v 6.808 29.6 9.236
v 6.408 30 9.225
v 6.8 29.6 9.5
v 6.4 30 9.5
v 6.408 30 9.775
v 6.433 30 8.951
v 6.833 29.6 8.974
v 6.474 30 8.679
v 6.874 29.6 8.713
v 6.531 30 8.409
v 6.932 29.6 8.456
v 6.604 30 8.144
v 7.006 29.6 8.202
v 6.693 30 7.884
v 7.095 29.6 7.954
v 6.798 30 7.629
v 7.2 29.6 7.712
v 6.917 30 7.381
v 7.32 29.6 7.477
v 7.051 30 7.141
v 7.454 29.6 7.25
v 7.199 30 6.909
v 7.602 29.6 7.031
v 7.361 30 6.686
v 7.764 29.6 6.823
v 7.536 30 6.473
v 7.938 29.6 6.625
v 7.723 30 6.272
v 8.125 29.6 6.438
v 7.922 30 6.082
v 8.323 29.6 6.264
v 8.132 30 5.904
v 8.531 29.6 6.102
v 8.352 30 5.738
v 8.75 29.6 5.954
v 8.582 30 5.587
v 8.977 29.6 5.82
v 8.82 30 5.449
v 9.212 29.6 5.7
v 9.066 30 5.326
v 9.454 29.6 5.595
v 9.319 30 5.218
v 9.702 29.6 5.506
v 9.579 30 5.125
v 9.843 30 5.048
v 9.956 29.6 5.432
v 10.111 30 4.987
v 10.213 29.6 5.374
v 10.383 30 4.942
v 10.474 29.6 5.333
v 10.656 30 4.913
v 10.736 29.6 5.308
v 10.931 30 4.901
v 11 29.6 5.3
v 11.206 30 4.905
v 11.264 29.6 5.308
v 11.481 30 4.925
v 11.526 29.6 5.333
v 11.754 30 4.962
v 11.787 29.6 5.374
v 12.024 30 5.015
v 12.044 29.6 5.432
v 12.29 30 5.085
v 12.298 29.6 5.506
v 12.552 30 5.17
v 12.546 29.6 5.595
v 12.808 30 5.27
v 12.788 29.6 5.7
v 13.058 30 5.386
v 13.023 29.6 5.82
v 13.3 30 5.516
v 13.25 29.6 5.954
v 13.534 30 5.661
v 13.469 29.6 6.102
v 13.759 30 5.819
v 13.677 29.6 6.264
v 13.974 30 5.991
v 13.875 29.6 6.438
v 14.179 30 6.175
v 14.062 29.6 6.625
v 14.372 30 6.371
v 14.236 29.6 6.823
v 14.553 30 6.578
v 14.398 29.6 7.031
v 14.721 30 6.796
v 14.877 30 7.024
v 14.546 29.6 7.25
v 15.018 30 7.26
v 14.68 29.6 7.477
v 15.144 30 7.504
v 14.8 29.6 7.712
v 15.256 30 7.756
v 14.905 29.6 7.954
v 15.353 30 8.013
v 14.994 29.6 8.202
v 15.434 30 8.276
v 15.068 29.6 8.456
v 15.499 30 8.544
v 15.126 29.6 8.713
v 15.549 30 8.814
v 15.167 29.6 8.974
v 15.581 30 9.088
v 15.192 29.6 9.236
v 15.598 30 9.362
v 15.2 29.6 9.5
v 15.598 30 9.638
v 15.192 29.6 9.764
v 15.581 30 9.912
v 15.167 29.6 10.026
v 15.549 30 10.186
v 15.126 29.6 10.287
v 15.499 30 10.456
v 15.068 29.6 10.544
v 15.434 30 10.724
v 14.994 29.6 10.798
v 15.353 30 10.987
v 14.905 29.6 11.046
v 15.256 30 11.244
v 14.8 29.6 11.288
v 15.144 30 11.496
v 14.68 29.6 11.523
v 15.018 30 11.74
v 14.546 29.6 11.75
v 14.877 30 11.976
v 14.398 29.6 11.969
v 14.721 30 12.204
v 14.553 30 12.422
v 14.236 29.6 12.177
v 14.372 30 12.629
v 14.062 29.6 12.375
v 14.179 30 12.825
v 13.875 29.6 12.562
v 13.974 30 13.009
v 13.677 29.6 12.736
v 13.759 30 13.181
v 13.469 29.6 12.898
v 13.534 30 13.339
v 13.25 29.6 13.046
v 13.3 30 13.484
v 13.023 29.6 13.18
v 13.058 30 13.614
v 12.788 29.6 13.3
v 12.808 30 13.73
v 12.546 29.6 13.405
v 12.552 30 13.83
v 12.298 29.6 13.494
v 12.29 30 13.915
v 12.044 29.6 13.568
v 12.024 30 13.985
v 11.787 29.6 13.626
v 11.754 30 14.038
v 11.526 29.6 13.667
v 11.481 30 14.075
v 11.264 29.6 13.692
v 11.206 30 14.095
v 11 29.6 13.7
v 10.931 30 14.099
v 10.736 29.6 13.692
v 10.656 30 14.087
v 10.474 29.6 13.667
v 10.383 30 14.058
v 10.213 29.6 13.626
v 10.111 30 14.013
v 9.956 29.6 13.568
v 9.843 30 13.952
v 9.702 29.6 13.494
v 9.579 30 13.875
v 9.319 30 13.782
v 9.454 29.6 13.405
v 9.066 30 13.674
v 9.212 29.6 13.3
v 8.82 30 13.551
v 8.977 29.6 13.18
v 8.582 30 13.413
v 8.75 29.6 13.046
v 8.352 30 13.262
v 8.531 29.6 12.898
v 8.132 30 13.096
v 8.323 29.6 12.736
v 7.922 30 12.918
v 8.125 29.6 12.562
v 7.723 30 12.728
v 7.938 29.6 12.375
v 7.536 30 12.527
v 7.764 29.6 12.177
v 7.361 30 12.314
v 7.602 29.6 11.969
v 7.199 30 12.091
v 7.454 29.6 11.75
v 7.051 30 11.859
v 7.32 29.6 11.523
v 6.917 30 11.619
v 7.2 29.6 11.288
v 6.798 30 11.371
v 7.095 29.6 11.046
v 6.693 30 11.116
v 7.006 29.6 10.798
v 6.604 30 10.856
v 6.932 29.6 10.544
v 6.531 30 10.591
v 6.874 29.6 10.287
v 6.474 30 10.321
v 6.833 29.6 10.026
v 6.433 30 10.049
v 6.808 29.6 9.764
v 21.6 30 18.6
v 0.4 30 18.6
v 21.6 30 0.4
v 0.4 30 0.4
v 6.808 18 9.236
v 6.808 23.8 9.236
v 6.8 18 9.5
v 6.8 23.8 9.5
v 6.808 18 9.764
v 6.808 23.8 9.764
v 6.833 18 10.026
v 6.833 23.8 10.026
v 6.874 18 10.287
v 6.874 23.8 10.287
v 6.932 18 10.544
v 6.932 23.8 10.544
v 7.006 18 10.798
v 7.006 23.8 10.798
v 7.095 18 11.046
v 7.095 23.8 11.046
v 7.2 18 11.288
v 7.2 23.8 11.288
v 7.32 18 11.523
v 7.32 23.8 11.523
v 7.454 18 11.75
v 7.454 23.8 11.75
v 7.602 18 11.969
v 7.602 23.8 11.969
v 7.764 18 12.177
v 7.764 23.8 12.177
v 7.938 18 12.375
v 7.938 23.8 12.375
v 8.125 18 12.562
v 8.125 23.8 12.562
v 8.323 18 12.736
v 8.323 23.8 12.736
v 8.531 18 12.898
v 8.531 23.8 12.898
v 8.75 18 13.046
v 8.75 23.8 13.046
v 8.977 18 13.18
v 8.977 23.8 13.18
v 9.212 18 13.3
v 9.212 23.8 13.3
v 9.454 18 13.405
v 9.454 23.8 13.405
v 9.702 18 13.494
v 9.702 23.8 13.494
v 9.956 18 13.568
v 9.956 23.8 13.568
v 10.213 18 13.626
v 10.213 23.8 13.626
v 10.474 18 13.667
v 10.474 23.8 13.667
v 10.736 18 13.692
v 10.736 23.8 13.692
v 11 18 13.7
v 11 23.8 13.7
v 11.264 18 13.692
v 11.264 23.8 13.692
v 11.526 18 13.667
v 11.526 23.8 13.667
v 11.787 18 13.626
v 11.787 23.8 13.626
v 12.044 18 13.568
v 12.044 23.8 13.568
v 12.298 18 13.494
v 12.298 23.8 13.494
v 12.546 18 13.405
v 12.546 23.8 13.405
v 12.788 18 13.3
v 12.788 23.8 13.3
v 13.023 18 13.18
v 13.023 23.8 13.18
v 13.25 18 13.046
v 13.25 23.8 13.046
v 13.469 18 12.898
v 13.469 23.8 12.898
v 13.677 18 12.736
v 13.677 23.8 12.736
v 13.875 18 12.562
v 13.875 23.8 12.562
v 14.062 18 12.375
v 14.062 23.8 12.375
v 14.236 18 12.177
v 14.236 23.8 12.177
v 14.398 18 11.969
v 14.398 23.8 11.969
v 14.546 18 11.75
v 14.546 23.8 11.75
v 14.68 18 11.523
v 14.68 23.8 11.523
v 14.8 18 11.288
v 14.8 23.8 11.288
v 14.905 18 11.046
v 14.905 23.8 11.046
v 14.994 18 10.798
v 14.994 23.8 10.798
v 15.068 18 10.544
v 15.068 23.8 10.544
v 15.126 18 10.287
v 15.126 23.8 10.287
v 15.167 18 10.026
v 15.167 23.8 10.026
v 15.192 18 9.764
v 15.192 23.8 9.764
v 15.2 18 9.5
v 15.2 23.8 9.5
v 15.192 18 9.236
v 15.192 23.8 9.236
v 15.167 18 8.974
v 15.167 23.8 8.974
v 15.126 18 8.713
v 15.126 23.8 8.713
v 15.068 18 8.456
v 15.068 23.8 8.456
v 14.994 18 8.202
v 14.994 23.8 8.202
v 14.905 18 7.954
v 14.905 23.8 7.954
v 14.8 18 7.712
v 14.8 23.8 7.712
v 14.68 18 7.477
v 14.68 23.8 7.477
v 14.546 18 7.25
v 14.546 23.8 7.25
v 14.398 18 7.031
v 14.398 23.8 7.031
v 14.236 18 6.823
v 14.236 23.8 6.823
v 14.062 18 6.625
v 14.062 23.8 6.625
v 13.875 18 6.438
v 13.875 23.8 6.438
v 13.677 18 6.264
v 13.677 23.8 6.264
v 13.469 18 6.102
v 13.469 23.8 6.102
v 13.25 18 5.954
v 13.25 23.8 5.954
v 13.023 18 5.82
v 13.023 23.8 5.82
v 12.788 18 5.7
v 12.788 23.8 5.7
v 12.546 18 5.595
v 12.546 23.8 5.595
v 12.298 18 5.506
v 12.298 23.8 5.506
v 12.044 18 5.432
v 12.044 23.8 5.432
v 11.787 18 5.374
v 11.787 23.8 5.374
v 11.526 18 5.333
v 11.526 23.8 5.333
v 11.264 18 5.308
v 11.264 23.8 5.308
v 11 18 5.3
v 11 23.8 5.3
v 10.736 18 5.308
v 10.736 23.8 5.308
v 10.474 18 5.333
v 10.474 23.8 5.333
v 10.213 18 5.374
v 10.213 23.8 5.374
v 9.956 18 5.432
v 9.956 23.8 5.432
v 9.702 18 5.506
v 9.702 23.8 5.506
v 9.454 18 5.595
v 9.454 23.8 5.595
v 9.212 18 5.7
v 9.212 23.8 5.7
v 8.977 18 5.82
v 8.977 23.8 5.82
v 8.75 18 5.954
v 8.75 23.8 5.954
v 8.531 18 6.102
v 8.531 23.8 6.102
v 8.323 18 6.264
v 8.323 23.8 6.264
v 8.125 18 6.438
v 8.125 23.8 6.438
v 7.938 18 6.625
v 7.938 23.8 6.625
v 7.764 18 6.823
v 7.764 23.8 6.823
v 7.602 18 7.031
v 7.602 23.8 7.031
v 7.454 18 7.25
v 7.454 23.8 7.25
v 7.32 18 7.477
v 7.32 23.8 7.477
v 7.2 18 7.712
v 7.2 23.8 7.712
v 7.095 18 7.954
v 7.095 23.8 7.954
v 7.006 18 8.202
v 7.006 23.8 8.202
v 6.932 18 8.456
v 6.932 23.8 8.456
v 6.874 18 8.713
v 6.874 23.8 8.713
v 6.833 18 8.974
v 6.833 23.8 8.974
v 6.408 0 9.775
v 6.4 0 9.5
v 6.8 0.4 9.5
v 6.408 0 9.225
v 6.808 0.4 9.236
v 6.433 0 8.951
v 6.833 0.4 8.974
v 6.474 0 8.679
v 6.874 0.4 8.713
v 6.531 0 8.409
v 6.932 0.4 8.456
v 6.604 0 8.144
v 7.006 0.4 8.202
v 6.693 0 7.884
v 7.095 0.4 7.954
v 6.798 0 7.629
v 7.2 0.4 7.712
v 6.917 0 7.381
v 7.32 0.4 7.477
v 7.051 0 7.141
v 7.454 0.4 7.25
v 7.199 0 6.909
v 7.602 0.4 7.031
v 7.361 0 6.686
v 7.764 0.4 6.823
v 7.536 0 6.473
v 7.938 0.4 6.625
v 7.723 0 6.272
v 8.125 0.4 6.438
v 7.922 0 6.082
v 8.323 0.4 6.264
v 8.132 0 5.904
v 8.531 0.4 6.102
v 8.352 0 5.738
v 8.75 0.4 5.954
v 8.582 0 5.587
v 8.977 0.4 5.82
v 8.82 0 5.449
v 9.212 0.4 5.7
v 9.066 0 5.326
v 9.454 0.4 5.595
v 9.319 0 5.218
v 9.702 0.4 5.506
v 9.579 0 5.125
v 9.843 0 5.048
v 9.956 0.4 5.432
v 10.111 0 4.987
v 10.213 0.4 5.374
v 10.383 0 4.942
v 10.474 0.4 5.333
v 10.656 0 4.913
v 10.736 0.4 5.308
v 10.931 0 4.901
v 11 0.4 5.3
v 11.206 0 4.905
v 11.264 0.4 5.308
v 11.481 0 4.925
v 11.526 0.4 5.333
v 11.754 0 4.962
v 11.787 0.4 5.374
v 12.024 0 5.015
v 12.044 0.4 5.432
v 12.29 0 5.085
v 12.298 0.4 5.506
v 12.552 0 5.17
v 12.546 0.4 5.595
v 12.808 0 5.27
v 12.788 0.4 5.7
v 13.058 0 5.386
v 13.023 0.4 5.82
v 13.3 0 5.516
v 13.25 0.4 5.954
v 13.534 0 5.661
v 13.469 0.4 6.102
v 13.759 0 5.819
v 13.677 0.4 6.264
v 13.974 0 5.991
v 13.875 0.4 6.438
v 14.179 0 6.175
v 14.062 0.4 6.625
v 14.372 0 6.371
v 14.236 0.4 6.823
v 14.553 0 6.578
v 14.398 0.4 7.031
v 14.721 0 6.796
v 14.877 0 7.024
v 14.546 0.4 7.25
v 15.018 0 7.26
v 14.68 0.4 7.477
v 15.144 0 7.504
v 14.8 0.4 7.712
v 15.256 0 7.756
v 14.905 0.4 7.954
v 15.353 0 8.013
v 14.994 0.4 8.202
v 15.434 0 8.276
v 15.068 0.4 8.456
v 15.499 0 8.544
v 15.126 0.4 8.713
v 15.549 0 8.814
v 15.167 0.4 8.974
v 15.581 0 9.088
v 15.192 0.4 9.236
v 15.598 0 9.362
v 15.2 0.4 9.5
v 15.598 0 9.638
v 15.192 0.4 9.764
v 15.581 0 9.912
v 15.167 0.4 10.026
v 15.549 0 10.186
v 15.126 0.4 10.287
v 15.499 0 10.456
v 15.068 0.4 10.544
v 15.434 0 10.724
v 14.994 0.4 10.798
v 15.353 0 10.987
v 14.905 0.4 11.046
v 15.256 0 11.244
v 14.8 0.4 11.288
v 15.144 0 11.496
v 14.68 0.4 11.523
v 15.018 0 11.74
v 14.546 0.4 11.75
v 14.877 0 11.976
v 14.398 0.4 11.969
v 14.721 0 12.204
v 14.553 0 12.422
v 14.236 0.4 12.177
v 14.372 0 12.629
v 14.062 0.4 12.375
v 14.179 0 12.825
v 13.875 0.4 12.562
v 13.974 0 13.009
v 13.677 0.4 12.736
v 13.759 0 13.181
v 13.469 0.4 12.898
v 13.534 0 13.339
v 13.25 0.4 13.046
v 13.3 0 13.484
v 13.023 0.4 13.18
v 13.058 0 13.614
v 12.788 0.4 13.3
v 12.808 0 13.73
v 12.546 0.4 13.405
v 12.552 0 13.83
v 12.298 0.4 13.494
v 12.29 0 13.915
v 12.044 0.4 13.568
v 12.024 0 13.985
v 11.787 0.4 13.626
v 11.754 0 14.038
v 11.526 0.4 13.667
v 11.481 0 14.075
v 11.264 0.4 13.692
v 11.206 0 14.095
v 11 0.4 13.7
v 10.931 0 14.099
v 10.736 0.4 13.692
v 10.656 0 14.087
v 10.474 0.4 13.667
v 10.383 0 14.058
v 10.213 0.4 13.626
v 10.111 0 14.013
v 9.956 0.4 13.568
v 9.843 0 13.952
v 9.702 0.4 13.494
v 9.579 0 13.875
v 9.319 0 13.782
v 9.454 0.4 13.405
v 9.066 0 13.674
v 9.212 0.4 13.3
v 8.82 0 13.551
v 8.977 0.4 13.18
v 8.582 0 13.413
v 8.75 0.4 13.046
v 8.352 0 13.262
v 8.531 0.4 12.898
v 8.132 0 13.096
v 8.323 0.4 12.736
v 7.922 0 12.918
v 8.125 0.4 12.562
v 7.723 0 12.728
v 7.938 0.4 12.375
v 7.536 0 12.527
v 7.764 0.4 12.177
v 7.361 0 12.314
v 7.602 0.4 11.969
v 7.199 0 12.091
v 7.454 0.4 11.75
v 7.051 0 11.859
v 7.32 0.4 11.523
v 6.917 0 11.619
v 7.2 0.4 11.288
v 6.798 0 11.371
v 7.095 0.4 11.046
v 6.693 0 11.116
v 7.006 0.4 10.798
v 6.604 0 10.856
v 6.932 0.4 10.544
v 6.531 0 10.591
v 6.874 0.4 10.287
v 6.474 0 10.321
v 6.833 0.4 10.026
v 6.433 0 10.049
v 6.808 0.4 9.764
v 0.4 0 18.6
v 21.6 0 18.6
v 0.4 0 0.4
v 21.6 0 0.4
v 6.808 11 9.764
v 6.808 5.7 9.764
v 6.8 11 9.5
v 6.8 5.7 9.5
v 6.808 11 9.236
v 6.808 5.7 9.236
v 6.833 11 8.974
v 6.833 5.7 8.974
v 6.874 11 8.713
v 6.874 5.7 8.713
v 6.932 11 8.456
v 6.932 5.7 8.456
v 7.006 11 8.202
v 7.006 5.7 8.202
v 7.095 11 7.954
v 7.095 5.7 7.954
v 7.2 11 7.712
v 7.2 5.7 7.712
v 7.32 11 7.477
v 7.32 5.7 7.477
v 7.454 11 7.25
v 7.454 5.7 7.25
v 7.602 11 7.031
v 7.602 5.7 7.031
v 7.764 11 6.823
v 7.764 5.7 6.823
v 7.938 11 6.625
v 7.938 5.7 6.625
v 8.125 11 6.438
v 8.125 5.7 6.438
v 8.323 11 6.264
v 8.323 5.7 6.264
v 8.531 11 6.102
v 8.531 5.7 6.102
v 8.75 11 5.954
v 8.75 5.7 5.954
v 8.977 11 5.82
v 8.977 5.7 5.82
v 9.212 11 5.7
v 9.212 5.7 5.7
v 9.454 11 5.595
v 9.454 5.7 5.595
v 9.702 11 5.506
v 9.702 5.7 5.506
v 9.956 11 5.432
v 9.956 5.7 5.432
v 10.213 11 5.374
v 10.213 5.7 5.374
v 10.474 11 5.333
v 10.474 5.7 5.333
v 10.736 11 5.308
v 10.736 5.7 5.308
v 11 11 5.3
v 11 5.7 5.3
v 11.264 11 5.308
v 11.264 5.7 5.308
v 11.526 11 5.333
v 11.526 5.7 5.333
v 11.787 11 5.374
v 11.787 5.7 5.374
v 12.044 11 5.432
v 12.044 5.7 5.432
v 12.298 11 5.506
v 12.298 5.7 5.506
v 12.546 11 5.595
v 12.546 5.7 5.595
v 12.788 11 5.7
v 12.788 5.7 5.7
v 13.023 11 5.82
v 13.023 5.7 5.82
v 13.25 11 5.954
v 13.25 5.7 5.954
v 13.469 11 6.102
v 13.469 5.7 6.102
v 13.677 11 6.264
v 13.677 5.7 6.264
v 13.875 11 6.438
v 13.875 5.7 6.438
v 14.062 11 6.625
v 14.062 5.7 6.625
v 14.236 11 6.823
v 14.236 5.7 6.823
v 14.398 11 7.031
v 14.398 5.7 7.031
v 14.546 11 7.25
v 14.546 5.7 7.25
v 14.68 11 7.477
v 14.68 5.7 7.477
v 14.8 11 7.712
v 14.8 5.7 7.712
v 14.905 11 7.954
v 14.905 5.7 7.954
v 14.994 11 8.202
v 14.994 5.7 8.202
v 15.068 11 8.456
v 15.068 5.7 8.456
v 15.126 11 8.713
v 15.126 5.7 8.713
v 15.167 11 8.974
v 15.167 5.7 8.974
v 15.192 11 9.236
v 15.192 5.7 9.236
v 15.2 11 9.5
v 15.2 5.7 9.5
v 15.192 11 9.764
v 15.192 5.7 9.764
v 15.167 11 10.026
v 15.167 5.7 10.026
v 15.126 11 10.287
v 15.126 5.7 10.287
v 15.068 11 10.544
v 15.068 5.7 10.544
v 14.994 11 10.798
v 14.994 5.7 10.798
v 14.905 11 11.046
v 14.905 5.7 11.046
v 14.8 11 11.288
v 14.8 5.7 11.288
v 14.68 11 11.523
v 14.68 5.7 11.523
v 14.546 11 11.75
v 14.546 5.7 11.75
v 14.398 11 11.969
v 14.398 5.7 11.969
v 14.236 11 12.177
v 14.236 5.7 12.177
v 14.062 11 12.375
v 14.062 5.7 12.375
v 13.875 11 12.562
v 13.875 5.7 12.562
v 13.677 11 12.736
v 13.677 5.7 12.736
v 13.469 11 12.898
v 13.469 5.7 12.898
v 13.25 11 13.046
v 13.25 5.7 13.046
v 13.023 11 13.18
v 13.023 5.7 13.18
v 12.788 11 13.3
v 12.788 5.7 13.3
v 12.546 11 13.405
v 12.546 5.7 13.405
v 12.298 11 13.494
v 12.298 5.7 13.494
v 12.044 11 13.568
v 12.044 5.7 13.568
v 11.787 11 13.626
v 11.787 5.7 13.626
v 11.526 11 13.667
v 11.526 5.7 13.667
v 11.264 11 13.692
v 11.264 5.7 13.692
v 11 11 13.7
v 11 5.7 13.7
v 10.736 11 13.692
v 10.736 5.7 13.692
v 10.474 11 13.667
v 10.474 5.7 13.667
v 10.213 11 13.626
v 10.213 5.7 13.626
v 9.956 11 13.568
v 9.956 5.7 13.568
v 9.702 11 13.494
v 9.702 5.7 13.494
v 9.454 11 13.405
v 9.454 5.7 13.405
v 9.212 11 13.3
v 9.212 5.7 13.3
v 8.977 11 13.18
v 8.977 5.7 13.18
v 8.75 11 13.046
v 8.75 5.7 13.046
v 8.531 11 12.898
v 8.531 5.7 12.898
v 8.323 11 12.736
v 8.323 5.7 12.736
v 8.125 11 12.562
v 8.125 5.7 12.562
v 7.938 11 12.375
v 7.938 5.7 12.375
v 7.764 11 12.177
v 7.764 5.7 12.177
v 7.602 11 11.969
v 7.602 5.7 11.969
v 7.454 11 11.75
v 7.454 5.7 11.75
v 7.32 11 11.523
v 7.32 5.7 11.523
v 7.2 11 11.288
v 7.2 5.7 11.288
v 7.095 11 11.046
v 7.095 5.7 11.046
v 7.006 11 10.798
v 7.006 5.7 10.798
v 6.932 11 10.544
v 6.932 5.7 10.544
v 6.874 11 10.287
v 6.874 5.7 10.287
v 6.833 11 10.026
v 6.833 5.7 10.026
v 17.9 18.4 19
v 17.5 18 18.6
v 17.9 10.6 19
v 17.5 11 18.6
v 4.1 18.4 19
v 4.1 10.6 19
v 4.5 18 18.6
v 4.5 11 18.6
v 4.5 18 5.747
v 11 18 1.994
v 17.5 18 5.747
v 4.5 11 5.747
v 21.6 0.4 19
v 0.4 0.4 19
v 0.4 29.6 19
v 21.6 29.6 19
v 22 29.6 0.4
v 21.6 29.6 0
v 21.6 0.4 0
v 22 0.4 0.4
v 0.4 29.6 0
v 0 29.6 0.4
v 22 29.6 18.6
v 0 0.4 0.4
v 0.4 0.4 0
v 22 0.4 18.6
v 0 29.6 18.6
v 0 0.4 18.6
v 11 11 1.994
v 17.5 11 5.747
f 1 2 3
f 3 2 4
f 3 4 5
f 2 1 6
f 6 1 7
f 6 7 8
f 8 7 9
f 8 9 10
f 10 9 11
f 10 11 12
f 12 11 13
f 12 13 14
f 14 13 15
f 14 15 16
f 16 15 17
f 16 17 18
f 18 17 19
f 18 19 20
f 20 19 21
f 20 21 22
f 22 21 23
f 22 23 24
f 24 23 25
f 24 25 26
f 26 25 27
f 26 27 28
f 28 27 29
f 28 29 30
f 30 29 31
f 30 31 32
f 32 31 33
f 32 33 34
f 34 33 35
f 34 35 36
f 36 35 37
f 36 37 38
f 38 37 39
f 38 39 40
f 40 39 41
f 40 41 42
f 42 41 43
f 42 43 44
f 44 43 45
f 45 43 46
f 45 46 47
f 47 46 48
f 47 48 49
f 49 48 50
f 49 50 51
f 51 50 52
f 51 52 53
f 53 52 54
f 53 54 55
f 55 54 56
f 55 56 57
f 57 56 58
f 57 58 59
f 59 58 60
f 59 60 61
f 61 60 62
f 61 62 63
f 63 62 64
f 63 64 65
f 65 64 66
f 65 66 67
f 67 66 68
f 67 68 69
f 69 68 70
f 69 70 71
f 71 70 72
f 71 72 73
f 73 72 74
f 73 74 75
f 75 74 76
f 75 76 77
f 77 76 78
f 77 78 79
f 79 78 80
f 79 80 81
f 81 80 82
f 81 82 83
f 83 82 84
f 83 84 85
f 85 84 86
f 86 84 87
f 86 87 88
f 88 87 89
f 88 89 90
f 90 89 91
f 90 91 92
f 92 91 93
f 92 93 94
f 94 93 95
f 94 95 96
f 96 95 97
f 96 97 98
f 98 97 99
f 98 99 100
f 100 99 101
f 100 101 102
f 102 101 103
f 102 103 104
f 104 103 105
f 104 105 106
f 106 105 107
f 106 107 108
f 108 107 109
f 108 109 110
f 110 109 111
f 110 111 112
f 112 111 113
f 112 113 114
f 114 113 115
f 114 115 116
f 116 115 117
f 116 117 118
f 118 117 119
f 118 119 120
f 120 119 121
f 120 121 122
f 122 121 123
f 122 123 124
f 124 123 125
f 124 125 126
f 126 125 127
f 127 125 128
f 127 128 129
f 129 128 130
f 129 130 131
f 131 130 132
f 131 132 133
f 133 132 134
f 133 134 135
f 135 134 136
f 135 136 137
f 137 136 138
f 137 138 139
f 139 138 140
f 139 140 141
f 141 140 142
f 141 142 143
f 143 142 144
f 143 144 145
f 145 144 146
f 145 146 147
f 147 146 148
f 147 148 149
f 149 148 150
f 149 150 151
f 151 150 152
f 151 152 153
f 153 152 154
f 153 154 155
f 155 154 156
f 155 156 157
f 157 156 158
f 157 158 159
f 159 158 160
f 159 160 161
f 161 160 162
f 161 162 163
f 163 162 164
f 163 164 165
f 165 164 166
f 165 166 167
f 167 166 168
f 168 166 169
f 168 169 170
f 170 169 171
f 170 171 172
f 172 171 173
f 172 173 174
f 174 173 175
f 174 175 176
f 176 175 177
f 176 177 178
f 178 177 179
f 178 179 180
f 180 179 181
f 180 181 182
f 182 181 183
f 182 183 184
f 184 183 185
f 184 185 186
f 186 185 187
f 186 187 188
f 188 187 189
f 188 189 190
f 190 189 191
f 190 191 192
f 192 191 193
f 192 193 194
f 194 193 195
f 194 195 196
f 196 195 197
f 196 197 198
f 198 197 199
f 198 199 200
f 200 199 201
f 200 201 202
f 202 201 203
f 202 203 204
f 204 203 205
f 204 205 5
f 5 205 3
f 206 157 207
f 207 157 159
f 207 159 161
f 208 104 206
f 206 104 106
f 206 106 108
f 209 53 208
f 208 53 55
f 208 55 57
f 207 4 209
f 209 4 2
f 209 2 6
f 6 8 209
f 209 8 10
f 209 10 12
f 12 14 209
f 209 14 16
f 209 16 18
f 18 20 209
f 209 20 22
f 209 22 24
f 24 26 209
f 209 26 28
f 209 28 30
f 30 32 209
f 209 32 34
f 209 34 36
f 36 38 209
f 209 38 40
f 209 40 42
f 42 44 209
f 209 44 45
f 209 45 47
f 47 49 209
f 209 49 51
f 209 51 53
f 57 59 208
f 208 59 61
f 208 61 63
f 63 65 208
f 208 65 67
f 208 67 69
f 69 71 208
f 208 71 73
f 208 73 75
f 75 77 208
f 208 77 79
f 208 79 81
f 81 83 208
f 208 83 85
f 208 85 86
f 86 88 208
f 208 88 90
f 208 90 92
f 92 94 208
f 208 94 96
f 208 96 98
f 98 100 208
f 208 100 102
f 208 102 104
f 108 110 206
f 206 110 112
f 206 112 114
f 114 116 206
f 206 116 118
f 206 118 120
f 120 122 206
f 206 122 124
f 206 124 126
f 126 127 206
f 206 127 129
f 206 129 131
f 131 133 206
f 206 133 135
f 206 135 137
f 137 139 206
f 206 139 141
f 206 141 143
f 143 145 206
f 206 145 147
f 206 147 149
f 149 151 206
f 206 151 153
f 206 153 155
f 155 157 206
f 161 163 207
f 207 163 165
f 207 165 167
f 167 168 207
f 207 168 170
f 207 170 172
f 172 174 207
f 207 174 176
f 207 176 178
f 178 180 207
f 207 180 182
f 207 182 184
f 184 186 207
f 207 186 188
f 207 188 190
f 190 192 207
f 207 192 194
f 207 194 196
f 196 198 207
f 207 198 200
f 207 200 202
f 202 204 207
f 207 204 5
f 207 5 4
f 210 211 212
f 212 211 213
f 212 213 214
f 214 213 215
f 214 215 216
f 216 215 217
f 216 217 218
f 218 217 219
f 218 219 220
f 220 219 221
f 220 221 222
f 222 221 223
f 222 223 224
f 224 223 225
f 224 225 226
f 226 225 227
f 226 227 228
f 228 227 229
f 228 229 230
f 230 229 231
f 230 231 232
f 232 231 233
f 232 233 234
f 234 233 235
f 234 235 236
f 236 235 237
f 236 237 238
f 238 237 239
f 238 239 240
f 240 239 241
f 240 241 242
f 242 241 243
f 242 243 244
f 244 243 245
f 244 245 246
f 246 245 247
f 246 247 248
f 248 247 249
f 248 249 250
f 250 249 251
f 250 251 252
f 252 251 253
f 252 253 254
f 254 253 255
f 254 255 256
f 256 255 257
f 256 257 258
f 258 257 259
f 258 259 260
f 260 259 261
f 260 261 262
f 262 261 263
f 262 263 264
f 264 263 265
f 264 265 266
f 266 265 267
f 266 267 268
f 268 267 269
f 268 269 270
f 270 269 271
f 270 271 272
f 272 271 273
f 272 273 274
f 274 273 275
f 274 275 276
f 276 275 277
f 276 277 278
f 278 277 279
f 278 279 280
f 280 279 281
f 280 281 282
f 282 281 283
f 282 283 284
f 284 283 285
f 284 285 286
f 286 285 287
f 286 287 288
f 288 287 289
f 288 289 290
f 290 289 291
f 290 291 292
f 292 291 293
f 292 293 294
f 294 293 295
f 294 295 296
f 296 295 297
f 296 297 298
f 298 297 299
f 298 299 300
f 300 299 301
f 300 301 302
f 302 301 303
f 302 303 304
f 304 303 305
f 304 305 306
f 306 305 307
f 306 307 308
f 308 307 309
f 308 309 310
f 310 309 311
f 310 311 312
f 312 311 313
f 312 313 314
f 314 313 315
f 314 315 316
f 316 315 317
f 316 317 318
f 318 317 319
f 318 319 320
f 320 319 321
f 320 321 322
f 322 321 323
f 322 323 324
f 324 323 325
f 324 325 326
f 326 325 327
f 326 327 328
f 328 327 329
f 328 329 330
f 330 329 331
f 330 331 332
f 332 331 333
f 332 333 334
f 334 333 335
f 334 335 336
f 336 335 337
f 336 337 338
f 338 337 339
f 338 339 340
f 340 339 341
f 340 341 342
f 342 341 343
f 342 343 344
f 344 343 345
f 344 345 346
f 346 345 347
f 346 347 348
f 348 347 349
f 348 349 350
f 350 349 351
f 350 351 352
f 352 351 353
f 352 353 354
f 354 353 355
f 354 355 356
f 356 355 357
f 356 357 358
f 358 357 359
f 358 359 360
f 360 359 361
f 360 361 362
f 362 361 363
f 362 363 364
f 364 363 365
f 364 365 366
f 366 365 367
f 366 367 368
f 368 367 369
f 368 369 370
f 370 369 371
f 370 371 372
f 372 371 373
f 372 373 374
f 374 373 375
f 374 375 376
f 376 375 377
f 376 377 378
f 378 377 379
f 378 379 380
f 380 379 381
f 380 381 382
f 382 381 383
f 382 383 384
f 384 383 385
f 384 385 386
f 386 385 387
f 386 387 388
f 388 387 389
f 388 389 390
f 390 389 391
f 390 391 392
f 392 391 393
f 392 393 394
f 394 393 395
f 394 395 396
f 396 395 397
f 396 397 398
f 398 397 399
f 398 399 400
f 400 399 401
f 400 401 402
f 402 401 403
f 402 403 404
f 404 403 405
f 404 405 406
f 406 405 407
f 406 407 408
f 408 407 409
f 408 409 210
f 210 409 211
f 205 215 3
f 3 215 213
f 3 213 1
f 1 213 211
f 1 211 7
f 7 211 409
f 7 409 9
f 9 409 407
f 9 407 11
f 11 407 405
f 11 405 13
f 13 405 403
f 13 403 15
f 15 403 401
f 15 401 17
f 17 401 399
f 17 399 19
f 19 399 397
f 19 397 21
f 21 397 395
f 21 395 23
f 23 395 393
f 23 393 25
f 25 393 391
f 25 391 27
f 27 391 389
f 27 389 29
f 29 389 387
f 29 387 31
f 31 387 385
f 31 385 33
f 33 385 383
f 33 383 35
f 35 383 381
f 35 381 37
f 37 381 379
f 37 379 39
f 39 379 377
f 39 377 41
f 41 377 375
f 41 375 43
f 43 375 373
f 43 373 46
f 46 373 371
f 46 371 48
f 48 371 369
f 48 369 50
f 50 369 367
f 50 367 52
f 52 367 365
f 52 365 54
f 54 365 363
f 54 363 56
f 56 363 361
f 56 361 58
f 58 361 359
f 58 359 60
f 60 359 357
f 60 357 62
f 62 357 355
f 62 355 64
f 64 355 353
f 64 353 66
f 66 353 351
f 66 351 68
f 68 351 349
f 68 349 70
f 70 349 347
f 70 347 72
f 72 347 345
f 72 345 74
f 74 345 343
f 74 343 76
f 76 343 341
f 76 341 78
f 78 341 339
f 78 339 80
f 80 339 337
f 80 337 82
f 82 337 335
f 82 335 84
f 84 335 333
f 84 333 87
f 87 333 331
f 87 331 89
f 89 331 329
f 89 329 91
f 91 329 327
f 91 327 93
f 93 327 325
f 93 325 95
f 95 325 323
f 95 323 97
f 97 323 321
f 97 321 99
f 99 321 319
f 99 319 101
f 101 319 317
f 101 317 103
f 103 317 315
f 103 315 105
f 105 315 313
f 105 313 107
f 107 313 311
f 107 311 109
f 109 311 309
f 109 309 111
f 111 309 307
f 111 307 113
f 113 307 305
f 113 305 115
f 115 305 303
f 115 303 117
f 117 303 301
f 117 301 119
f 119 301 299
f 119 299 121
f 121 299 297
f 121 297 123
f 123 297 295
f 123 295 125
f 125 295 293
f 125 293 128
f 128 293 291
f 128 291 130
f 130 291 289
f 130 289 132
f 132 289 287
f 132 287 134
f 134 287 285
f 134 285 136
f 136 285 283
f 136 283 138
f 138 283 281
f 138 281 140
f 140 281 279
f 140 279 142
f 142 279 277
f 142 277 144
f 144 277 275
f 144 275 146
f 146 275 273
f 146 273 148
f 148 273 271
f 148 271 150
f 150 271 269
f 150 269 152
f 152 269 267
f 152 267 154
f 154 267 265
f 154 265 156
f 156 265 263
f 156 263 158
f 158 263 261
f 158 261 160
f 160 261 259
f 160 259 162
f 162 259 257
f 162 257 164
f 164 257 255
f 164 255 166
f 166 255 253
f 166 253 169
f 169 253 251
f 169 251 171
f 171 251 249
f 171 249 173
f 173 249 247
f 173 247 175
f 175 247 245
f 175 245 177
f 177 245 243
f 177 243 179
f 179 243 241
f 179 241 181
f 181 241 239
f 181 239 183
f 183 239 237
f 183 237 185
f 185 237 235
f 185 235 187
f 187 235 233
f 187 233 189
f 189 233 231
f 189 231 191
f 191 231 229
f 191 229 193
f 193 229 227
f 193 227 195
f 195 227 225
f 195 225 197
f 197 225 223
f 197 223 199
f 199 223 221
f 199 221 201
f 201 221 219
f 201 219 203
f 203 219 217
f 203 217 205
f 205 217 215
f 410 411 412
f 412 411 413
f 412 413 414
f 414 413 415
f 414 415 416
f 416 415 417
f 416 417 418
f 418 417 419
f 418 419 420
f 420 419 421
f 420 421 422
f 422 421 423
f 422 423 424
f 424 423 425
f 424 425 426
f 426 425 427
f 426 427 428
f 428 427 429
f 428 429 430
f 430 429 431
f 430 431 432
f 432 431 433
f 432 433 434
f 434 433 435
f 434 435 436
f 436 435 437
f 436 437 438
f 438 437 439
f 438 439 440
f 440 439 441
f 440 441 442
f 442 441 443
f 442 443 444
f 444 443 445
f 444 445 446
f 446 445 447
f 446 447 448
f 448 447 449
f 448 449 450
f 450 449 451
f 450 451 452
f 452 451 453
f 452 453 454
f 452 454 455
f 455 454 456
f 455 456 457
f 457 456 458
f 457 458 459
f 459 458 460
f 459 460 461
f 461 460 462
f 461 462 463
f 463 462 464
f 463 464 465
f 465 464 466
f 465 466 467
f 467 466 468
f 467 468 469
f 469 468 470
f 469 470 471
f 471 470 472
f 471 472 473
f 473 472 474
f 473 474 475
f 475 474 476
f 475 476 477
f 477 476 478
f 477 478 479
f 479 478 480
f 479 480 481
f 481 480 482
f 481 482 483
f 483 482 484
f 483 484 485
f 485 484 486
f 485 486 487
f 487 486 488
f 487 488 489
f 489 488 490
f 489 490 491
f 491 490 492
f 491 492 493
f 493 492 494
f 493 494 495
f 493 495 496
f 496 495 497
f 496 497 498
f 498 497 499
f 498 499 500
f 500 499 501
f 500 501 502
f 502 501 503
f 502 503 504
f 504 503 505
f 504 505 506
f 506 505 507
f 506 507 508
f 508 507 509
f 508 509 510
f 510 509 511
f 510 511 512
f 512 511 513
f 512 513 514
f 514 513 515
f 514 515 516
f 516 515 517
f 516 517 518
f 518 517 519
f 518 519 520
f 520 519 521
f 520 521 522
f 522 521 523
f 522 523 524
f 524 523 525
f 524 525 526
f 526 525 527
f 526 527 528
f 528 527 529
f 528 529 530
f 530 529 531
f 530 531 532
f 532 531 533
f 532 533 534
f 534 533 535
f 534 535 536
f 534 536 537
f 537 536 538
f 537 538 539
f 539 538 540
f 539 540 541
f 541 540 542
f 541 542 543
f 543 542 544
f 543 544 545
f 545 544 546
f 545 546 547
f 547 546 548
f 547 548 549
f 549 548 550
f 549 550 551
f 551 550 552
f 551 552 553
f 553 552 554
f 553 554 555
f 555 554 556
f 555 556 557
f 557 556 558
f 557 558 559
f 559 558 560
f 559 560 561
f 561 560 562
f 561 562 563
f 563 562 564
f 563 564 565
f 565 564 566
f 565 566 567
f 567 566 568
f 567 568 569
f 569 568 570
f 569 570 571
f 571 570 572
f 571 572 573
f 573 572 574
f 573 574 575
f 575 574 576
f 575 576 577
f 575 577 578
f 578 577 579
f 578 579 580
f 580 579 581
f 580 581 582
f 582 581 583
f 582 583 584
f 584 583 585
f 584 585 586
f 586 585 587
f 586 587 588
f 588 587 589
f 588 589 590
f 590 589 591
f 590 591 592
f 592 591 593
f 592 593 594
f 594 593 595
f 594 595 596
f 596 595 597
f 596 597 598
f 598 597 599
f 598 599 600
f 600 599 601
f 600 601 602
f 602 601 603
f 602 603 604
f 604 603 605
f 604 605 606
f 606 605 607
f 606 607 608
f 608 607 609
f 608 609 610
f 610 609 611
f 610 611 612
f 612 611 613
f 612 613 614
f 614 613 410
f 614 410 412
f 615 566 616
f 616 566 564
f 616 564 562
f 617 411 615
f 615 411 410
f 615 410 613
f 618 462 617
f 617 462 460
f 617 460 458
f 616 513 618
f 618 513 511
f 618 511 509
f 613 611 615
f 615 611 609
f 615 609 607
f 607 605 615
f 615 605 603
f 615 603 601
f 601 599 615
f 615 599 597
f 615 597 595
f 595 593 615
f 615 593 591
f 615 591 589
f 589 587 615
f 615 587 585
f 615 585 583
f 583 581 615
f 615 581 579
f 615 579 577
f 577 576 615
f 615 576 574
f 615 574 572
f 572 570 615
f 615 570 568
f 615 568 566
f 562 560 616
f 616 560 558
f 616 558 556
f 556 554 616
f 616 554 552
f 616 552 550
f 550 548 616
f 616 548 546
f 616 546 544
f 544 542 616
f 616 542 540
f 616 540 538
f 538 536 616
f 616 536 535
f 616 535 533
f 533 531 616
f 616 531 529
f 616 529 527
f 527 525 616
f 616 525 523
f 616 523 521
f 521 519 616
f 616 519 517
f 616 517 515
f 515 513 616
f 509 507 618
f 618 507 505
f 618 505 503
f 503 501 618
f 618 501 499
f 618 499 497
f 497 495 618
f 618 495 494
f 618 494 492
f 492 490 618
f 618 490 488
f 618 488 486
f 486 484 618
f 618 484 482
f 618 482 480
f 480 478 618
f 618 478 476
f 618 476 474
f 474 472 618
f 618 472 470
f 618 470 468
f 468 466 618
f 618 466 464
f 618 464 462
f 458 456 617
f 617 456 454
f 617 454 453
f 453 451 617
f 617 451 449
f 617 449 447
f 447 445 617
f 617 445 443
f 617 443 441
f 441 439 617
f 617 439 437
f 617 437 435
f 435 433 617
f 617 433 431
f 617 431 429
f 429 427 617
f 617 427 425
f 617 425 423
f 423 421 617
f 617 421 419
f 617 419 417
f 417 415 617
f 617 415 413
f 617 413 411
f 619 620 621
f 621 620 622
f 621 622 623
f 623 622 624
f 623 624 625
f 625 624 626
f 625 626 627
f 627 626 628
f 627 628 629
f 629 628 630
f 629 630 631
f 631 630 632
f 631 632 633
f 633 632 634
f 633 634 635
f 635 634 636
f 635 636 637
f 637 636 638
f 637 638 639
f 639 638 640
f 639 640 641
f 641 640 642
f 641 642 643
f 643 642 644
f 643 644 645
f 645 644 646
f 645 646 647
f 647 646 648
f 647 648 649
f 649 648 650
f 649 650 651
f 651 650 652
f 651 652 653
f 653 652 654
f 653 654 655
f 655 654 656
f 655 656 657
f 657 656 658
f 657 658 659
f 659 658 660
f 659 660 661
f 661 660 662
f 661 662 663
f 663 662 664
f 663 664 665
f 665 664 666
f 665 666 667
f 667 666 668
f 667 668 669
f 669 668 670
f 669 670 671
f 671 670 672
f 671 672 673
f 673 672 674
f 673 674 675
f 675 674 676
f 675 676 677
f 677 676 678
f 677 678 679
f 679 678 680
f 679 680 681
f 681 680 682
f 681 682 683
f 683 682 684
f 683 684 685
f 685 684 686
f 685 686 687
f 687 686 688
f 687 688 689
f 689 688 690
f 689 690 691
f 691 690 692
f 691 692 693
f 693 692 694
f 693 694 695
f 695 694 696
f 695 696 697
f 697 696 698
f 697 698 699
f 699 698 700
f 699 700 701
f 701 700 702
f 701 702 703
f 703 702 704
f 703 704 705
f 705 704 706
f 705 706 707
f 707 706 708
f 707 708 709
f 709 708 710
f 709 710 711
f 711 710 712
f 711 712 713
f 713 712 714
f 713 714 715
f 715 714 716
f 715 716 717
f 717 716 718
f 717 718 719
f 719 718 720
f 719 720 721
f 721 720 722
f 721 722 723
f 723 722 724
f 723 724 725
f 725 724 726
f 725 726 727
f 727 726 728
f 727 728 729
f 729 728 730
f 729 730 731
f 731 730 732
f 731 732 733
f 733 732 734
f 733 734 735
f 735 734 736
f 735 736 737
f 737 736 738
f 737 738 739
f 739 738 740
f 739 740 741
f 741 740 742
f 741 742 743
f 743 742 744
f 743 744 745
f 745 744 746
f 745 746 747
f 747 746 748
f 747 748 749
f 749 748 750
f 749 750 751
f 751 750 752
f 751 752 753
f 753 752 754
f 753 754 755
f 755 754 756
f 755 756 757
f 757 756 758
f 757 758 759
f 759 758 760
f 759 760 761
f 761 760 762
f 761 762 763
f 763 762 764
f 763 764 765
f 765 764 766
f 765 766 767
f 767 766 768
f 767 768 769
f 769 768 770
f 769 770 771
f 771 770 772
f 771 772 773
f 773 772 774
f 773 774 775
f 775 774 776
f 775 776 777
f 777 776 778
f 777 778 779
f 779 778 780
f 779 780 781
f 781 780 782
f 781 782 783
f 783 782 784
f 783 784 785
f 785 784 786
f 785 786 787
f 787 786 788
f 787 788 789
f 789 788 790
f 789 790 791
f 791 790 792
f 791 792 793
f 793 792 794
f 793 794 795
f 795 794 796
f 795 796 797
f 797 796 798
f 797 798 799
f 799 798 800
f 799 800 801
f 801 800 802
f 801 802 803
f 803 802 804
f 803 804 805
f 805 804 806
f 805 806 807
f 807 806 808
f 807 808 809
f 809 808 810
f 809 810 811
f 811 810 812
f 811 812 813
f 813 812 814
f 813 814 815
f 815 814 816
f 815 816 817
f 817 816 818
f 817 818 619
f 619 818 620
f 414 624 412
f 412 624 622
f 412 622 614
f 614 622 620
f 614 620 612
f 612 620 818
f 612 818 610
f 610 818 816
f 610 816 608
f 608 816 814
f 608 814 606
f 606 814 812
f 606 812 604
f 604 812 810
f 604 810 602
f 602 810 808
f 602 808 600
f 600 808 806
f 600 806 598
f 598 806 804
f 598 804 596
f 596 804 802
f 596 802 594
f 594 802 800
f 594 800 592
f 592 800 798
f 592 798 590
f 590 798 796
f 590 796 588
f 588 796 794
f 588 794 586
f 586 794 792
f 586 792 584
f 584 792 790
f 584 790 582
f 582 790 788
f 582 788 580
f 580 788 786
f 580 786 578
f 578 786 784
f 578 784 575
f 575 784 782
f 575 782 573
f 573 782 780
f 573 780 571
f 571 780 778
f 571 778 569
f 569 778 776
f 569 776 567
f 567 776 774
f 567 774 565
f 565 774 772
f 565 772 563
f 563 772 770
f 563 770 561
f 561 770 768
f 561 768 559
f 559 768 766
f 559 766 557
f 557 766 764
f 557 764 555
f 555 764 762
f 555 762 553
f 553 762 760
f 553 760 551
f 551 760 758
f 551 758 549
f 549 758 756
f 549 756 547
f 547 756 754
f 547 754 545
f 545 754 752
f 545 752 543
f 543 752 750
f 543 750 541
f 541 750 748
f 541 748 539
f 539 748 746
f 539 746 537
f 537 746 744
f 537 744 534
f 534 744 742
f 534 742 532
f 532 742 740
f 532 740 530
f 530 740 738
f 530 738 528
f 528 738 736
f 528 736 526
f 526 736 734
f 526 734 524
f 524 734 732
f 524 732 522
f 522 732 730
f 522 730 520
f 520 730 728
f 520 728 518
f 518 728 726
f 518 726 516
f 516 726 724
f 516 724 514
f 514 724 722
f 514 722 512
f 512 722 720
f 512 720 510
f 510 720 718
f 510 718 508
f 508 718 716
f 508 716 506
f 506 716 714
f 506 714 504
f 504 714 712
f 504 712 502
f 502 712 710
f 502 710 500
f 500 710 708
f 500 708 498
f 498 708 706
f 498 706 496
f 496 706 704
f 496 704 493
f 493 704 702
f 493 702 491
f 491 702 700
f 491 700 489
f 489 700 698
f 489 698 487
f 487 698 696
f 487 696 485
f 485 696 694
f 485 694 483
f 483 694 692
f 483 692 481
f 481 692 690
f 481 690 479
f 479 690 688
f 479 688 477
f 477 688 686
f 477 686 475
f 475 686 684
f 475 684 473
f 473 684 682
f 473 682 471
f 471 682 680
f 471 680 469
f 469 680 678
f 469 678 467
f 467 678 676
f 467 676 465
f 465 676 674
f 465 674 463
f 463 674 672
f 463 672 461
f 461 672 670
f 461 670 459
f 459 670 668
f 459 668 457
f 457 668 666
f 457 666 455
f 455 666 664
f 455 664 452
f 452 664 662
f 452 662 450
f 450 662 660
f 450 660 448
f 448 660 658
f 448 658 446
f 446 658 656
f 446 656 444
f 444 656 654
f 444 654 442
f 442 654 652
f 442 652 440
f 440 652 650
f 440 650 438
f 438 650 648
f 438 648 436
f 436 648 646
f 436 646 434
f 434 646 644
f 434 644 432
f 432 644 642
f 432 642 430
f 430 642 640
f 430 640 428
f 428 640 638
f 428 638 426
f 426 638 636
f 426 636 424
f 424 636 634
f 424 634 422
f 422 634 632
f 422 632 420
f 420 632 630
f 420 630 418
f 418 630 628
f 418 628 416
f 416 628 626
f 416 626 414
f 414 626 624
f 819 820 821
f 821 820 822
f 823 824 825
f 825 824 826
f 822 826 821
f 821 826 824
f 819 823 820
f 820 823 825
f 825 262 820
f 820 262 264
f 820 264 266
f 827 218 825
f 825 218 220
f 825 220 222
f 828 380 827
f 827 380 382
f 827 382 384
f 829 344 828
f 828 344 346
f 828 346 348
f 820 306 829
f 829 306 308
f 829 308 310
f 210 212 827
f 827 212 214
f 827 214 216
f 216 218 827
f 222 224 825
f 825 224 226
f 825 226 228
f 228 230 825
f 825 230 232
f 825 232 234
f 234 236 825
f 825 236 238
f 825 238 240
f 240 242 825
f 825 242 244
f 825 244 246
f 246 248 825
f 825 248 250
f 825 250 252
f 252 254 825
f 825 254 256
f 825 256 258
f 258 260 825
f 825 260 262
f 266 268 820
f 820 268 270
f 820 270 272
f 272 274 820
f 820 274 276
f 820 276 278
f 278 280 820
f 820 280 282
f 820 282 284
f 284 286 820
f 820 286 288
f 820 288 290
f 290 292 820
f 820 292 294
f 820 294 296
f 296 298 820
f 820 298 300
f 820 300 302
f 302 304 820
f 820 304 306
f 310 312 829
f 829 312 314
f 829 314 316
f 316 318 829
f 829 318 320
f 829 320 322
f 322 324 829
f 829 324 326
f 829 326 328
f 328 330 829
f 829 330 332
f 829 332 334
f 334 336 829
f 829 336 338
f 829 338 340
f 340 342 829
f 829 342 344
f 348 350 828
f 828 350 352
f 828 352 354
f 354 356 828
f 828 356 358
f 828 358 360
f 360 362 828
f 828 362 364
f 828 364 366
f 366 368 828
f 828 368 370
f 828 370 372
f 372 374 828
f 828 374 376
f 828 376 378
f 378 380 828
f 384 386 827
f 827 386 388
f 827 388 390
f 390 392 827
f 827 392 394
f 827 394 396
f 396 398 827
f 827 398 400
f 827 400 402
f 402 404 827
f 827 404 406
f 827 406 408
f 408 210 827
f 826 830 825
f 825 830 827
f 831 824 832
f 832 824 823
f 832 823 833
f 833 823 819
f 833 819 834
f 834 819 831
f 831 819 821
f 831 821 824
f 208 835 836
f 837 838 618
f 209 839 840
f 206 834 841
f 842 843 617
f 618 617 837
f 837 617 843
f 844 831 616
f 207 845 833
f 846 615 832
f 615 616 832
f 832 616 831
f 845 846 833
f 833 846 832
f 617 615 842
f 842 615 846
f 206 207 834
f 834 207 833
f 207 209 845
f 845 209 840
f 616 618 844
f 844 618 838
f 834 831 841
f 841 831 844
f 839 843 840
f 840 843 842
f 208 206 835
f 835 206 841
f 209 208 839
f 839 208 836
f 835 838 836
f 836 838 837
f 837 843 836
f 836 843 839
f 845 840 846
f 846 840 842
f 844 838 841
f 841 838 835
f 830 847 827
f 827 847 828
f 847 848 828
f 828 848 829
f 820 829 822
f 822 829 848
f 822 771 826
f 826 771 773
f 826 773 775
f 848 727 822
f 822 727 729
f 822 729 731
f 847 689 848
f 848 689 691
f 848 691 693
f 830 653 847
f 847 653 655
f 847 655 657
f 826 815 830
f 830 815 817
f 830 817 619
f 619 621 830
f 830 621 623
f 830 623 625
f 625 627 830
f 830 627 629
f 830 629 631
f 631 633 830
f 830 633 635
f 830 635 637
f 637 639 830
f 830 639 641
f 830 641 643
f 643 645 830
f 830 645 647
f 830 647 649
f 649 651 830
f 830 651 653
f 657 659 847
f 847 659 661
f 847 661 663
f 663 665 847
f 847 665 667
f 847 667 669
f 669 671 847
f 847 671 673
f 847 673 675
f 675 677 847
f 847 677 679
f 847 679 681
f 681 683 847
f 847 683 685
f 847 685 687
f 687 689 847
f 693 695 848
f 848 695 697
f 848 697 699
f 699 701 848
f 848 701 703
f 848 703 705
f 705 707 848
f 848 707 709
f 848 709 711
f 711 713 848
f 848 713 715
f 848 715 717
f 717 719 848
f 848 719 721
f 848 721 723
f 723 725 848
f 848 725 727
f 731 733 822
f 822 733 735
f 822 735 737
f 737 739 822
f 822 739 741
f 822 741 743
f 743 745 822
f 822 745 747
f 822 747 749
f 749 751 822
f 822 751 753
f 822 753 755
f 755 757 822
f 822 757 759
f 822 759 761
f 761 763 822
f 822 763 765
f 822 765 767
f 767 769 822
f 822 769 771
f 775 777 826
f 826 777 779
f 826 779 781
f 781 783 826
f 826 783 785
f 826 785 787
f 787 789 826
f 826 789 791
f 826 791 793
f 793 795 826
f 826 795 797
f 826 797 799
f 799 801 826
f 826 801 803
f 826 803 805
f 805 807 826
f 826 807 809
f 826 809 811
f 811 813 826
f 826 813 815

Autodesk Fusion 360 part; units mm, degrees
sketch "Sketch1" plane through (0, 0, 0) normal (0, 1, 0) x (1, 0, 0)
  line L0 (0, 0) -> (22, 0)
  line L1 (22, 0) -> (22, -19)
  line L2 (22, -19) -> (0, -19)
  line L3 (0, -19) -> (0, 0)
  line L4 (0, -9.5) -> (22, -9.5) construction
  line L5 (17.5, -13.2528) -> (17.5, -5.7472)
  line L6 (17.5, -5.7472) -> (11, -1.9944)
  line L7 (11, -1.9944) -> (4.5, -5.7472)
  line L8 (4.5, -5.7472) -> (4.5, -13.2528)
  line L9 (4.5, -13.2528) -> (11, -17.0056)
  line L10 (11, -17.0056) -> (17.5, -13.2528)
  line L11 (17.5, -13.2528) -> (17.5, -19)
  line L12 (4.5, -13.2528) -> (4.5, -19)
  circle A0 centre (11, -9.5) radius 4.2
  point P0 (11, -9.5)
  dimension "d1" = 19
  dimension "d2" = 22
  dimension "d3" = 13
  dimension "d4" = 8.4
extrude "Extrude1" add sketch "Sketch1" along normal blind 30
extrude "Extrude2" cut sketch "Sketch1" along normal blind 7 from surface at 11 contours L2 L9 L10 L11 L12 | L5 L6 L7 L8 L9 L10
chamfer "Chamfer1" distance 0.4 angle 45 18 edges at (0, 15, 19) (0, 15, 0) (22, 15, 19) (22, 15, 0) (22, 30, 9.5) (11, 30, 19) (0, 30, 9.5) (11, 30, 0) (22, 0, 9.5) (11, 0, 19) (11, 0, 0) (0, 0, 9.5) (4.5, 14.5, 19) (17.5, 14.5, 19) (7.0842, 0, 7.9812) (7.0842, 30, 7.9812) (11, 18, 19) (11, 11, 19)
